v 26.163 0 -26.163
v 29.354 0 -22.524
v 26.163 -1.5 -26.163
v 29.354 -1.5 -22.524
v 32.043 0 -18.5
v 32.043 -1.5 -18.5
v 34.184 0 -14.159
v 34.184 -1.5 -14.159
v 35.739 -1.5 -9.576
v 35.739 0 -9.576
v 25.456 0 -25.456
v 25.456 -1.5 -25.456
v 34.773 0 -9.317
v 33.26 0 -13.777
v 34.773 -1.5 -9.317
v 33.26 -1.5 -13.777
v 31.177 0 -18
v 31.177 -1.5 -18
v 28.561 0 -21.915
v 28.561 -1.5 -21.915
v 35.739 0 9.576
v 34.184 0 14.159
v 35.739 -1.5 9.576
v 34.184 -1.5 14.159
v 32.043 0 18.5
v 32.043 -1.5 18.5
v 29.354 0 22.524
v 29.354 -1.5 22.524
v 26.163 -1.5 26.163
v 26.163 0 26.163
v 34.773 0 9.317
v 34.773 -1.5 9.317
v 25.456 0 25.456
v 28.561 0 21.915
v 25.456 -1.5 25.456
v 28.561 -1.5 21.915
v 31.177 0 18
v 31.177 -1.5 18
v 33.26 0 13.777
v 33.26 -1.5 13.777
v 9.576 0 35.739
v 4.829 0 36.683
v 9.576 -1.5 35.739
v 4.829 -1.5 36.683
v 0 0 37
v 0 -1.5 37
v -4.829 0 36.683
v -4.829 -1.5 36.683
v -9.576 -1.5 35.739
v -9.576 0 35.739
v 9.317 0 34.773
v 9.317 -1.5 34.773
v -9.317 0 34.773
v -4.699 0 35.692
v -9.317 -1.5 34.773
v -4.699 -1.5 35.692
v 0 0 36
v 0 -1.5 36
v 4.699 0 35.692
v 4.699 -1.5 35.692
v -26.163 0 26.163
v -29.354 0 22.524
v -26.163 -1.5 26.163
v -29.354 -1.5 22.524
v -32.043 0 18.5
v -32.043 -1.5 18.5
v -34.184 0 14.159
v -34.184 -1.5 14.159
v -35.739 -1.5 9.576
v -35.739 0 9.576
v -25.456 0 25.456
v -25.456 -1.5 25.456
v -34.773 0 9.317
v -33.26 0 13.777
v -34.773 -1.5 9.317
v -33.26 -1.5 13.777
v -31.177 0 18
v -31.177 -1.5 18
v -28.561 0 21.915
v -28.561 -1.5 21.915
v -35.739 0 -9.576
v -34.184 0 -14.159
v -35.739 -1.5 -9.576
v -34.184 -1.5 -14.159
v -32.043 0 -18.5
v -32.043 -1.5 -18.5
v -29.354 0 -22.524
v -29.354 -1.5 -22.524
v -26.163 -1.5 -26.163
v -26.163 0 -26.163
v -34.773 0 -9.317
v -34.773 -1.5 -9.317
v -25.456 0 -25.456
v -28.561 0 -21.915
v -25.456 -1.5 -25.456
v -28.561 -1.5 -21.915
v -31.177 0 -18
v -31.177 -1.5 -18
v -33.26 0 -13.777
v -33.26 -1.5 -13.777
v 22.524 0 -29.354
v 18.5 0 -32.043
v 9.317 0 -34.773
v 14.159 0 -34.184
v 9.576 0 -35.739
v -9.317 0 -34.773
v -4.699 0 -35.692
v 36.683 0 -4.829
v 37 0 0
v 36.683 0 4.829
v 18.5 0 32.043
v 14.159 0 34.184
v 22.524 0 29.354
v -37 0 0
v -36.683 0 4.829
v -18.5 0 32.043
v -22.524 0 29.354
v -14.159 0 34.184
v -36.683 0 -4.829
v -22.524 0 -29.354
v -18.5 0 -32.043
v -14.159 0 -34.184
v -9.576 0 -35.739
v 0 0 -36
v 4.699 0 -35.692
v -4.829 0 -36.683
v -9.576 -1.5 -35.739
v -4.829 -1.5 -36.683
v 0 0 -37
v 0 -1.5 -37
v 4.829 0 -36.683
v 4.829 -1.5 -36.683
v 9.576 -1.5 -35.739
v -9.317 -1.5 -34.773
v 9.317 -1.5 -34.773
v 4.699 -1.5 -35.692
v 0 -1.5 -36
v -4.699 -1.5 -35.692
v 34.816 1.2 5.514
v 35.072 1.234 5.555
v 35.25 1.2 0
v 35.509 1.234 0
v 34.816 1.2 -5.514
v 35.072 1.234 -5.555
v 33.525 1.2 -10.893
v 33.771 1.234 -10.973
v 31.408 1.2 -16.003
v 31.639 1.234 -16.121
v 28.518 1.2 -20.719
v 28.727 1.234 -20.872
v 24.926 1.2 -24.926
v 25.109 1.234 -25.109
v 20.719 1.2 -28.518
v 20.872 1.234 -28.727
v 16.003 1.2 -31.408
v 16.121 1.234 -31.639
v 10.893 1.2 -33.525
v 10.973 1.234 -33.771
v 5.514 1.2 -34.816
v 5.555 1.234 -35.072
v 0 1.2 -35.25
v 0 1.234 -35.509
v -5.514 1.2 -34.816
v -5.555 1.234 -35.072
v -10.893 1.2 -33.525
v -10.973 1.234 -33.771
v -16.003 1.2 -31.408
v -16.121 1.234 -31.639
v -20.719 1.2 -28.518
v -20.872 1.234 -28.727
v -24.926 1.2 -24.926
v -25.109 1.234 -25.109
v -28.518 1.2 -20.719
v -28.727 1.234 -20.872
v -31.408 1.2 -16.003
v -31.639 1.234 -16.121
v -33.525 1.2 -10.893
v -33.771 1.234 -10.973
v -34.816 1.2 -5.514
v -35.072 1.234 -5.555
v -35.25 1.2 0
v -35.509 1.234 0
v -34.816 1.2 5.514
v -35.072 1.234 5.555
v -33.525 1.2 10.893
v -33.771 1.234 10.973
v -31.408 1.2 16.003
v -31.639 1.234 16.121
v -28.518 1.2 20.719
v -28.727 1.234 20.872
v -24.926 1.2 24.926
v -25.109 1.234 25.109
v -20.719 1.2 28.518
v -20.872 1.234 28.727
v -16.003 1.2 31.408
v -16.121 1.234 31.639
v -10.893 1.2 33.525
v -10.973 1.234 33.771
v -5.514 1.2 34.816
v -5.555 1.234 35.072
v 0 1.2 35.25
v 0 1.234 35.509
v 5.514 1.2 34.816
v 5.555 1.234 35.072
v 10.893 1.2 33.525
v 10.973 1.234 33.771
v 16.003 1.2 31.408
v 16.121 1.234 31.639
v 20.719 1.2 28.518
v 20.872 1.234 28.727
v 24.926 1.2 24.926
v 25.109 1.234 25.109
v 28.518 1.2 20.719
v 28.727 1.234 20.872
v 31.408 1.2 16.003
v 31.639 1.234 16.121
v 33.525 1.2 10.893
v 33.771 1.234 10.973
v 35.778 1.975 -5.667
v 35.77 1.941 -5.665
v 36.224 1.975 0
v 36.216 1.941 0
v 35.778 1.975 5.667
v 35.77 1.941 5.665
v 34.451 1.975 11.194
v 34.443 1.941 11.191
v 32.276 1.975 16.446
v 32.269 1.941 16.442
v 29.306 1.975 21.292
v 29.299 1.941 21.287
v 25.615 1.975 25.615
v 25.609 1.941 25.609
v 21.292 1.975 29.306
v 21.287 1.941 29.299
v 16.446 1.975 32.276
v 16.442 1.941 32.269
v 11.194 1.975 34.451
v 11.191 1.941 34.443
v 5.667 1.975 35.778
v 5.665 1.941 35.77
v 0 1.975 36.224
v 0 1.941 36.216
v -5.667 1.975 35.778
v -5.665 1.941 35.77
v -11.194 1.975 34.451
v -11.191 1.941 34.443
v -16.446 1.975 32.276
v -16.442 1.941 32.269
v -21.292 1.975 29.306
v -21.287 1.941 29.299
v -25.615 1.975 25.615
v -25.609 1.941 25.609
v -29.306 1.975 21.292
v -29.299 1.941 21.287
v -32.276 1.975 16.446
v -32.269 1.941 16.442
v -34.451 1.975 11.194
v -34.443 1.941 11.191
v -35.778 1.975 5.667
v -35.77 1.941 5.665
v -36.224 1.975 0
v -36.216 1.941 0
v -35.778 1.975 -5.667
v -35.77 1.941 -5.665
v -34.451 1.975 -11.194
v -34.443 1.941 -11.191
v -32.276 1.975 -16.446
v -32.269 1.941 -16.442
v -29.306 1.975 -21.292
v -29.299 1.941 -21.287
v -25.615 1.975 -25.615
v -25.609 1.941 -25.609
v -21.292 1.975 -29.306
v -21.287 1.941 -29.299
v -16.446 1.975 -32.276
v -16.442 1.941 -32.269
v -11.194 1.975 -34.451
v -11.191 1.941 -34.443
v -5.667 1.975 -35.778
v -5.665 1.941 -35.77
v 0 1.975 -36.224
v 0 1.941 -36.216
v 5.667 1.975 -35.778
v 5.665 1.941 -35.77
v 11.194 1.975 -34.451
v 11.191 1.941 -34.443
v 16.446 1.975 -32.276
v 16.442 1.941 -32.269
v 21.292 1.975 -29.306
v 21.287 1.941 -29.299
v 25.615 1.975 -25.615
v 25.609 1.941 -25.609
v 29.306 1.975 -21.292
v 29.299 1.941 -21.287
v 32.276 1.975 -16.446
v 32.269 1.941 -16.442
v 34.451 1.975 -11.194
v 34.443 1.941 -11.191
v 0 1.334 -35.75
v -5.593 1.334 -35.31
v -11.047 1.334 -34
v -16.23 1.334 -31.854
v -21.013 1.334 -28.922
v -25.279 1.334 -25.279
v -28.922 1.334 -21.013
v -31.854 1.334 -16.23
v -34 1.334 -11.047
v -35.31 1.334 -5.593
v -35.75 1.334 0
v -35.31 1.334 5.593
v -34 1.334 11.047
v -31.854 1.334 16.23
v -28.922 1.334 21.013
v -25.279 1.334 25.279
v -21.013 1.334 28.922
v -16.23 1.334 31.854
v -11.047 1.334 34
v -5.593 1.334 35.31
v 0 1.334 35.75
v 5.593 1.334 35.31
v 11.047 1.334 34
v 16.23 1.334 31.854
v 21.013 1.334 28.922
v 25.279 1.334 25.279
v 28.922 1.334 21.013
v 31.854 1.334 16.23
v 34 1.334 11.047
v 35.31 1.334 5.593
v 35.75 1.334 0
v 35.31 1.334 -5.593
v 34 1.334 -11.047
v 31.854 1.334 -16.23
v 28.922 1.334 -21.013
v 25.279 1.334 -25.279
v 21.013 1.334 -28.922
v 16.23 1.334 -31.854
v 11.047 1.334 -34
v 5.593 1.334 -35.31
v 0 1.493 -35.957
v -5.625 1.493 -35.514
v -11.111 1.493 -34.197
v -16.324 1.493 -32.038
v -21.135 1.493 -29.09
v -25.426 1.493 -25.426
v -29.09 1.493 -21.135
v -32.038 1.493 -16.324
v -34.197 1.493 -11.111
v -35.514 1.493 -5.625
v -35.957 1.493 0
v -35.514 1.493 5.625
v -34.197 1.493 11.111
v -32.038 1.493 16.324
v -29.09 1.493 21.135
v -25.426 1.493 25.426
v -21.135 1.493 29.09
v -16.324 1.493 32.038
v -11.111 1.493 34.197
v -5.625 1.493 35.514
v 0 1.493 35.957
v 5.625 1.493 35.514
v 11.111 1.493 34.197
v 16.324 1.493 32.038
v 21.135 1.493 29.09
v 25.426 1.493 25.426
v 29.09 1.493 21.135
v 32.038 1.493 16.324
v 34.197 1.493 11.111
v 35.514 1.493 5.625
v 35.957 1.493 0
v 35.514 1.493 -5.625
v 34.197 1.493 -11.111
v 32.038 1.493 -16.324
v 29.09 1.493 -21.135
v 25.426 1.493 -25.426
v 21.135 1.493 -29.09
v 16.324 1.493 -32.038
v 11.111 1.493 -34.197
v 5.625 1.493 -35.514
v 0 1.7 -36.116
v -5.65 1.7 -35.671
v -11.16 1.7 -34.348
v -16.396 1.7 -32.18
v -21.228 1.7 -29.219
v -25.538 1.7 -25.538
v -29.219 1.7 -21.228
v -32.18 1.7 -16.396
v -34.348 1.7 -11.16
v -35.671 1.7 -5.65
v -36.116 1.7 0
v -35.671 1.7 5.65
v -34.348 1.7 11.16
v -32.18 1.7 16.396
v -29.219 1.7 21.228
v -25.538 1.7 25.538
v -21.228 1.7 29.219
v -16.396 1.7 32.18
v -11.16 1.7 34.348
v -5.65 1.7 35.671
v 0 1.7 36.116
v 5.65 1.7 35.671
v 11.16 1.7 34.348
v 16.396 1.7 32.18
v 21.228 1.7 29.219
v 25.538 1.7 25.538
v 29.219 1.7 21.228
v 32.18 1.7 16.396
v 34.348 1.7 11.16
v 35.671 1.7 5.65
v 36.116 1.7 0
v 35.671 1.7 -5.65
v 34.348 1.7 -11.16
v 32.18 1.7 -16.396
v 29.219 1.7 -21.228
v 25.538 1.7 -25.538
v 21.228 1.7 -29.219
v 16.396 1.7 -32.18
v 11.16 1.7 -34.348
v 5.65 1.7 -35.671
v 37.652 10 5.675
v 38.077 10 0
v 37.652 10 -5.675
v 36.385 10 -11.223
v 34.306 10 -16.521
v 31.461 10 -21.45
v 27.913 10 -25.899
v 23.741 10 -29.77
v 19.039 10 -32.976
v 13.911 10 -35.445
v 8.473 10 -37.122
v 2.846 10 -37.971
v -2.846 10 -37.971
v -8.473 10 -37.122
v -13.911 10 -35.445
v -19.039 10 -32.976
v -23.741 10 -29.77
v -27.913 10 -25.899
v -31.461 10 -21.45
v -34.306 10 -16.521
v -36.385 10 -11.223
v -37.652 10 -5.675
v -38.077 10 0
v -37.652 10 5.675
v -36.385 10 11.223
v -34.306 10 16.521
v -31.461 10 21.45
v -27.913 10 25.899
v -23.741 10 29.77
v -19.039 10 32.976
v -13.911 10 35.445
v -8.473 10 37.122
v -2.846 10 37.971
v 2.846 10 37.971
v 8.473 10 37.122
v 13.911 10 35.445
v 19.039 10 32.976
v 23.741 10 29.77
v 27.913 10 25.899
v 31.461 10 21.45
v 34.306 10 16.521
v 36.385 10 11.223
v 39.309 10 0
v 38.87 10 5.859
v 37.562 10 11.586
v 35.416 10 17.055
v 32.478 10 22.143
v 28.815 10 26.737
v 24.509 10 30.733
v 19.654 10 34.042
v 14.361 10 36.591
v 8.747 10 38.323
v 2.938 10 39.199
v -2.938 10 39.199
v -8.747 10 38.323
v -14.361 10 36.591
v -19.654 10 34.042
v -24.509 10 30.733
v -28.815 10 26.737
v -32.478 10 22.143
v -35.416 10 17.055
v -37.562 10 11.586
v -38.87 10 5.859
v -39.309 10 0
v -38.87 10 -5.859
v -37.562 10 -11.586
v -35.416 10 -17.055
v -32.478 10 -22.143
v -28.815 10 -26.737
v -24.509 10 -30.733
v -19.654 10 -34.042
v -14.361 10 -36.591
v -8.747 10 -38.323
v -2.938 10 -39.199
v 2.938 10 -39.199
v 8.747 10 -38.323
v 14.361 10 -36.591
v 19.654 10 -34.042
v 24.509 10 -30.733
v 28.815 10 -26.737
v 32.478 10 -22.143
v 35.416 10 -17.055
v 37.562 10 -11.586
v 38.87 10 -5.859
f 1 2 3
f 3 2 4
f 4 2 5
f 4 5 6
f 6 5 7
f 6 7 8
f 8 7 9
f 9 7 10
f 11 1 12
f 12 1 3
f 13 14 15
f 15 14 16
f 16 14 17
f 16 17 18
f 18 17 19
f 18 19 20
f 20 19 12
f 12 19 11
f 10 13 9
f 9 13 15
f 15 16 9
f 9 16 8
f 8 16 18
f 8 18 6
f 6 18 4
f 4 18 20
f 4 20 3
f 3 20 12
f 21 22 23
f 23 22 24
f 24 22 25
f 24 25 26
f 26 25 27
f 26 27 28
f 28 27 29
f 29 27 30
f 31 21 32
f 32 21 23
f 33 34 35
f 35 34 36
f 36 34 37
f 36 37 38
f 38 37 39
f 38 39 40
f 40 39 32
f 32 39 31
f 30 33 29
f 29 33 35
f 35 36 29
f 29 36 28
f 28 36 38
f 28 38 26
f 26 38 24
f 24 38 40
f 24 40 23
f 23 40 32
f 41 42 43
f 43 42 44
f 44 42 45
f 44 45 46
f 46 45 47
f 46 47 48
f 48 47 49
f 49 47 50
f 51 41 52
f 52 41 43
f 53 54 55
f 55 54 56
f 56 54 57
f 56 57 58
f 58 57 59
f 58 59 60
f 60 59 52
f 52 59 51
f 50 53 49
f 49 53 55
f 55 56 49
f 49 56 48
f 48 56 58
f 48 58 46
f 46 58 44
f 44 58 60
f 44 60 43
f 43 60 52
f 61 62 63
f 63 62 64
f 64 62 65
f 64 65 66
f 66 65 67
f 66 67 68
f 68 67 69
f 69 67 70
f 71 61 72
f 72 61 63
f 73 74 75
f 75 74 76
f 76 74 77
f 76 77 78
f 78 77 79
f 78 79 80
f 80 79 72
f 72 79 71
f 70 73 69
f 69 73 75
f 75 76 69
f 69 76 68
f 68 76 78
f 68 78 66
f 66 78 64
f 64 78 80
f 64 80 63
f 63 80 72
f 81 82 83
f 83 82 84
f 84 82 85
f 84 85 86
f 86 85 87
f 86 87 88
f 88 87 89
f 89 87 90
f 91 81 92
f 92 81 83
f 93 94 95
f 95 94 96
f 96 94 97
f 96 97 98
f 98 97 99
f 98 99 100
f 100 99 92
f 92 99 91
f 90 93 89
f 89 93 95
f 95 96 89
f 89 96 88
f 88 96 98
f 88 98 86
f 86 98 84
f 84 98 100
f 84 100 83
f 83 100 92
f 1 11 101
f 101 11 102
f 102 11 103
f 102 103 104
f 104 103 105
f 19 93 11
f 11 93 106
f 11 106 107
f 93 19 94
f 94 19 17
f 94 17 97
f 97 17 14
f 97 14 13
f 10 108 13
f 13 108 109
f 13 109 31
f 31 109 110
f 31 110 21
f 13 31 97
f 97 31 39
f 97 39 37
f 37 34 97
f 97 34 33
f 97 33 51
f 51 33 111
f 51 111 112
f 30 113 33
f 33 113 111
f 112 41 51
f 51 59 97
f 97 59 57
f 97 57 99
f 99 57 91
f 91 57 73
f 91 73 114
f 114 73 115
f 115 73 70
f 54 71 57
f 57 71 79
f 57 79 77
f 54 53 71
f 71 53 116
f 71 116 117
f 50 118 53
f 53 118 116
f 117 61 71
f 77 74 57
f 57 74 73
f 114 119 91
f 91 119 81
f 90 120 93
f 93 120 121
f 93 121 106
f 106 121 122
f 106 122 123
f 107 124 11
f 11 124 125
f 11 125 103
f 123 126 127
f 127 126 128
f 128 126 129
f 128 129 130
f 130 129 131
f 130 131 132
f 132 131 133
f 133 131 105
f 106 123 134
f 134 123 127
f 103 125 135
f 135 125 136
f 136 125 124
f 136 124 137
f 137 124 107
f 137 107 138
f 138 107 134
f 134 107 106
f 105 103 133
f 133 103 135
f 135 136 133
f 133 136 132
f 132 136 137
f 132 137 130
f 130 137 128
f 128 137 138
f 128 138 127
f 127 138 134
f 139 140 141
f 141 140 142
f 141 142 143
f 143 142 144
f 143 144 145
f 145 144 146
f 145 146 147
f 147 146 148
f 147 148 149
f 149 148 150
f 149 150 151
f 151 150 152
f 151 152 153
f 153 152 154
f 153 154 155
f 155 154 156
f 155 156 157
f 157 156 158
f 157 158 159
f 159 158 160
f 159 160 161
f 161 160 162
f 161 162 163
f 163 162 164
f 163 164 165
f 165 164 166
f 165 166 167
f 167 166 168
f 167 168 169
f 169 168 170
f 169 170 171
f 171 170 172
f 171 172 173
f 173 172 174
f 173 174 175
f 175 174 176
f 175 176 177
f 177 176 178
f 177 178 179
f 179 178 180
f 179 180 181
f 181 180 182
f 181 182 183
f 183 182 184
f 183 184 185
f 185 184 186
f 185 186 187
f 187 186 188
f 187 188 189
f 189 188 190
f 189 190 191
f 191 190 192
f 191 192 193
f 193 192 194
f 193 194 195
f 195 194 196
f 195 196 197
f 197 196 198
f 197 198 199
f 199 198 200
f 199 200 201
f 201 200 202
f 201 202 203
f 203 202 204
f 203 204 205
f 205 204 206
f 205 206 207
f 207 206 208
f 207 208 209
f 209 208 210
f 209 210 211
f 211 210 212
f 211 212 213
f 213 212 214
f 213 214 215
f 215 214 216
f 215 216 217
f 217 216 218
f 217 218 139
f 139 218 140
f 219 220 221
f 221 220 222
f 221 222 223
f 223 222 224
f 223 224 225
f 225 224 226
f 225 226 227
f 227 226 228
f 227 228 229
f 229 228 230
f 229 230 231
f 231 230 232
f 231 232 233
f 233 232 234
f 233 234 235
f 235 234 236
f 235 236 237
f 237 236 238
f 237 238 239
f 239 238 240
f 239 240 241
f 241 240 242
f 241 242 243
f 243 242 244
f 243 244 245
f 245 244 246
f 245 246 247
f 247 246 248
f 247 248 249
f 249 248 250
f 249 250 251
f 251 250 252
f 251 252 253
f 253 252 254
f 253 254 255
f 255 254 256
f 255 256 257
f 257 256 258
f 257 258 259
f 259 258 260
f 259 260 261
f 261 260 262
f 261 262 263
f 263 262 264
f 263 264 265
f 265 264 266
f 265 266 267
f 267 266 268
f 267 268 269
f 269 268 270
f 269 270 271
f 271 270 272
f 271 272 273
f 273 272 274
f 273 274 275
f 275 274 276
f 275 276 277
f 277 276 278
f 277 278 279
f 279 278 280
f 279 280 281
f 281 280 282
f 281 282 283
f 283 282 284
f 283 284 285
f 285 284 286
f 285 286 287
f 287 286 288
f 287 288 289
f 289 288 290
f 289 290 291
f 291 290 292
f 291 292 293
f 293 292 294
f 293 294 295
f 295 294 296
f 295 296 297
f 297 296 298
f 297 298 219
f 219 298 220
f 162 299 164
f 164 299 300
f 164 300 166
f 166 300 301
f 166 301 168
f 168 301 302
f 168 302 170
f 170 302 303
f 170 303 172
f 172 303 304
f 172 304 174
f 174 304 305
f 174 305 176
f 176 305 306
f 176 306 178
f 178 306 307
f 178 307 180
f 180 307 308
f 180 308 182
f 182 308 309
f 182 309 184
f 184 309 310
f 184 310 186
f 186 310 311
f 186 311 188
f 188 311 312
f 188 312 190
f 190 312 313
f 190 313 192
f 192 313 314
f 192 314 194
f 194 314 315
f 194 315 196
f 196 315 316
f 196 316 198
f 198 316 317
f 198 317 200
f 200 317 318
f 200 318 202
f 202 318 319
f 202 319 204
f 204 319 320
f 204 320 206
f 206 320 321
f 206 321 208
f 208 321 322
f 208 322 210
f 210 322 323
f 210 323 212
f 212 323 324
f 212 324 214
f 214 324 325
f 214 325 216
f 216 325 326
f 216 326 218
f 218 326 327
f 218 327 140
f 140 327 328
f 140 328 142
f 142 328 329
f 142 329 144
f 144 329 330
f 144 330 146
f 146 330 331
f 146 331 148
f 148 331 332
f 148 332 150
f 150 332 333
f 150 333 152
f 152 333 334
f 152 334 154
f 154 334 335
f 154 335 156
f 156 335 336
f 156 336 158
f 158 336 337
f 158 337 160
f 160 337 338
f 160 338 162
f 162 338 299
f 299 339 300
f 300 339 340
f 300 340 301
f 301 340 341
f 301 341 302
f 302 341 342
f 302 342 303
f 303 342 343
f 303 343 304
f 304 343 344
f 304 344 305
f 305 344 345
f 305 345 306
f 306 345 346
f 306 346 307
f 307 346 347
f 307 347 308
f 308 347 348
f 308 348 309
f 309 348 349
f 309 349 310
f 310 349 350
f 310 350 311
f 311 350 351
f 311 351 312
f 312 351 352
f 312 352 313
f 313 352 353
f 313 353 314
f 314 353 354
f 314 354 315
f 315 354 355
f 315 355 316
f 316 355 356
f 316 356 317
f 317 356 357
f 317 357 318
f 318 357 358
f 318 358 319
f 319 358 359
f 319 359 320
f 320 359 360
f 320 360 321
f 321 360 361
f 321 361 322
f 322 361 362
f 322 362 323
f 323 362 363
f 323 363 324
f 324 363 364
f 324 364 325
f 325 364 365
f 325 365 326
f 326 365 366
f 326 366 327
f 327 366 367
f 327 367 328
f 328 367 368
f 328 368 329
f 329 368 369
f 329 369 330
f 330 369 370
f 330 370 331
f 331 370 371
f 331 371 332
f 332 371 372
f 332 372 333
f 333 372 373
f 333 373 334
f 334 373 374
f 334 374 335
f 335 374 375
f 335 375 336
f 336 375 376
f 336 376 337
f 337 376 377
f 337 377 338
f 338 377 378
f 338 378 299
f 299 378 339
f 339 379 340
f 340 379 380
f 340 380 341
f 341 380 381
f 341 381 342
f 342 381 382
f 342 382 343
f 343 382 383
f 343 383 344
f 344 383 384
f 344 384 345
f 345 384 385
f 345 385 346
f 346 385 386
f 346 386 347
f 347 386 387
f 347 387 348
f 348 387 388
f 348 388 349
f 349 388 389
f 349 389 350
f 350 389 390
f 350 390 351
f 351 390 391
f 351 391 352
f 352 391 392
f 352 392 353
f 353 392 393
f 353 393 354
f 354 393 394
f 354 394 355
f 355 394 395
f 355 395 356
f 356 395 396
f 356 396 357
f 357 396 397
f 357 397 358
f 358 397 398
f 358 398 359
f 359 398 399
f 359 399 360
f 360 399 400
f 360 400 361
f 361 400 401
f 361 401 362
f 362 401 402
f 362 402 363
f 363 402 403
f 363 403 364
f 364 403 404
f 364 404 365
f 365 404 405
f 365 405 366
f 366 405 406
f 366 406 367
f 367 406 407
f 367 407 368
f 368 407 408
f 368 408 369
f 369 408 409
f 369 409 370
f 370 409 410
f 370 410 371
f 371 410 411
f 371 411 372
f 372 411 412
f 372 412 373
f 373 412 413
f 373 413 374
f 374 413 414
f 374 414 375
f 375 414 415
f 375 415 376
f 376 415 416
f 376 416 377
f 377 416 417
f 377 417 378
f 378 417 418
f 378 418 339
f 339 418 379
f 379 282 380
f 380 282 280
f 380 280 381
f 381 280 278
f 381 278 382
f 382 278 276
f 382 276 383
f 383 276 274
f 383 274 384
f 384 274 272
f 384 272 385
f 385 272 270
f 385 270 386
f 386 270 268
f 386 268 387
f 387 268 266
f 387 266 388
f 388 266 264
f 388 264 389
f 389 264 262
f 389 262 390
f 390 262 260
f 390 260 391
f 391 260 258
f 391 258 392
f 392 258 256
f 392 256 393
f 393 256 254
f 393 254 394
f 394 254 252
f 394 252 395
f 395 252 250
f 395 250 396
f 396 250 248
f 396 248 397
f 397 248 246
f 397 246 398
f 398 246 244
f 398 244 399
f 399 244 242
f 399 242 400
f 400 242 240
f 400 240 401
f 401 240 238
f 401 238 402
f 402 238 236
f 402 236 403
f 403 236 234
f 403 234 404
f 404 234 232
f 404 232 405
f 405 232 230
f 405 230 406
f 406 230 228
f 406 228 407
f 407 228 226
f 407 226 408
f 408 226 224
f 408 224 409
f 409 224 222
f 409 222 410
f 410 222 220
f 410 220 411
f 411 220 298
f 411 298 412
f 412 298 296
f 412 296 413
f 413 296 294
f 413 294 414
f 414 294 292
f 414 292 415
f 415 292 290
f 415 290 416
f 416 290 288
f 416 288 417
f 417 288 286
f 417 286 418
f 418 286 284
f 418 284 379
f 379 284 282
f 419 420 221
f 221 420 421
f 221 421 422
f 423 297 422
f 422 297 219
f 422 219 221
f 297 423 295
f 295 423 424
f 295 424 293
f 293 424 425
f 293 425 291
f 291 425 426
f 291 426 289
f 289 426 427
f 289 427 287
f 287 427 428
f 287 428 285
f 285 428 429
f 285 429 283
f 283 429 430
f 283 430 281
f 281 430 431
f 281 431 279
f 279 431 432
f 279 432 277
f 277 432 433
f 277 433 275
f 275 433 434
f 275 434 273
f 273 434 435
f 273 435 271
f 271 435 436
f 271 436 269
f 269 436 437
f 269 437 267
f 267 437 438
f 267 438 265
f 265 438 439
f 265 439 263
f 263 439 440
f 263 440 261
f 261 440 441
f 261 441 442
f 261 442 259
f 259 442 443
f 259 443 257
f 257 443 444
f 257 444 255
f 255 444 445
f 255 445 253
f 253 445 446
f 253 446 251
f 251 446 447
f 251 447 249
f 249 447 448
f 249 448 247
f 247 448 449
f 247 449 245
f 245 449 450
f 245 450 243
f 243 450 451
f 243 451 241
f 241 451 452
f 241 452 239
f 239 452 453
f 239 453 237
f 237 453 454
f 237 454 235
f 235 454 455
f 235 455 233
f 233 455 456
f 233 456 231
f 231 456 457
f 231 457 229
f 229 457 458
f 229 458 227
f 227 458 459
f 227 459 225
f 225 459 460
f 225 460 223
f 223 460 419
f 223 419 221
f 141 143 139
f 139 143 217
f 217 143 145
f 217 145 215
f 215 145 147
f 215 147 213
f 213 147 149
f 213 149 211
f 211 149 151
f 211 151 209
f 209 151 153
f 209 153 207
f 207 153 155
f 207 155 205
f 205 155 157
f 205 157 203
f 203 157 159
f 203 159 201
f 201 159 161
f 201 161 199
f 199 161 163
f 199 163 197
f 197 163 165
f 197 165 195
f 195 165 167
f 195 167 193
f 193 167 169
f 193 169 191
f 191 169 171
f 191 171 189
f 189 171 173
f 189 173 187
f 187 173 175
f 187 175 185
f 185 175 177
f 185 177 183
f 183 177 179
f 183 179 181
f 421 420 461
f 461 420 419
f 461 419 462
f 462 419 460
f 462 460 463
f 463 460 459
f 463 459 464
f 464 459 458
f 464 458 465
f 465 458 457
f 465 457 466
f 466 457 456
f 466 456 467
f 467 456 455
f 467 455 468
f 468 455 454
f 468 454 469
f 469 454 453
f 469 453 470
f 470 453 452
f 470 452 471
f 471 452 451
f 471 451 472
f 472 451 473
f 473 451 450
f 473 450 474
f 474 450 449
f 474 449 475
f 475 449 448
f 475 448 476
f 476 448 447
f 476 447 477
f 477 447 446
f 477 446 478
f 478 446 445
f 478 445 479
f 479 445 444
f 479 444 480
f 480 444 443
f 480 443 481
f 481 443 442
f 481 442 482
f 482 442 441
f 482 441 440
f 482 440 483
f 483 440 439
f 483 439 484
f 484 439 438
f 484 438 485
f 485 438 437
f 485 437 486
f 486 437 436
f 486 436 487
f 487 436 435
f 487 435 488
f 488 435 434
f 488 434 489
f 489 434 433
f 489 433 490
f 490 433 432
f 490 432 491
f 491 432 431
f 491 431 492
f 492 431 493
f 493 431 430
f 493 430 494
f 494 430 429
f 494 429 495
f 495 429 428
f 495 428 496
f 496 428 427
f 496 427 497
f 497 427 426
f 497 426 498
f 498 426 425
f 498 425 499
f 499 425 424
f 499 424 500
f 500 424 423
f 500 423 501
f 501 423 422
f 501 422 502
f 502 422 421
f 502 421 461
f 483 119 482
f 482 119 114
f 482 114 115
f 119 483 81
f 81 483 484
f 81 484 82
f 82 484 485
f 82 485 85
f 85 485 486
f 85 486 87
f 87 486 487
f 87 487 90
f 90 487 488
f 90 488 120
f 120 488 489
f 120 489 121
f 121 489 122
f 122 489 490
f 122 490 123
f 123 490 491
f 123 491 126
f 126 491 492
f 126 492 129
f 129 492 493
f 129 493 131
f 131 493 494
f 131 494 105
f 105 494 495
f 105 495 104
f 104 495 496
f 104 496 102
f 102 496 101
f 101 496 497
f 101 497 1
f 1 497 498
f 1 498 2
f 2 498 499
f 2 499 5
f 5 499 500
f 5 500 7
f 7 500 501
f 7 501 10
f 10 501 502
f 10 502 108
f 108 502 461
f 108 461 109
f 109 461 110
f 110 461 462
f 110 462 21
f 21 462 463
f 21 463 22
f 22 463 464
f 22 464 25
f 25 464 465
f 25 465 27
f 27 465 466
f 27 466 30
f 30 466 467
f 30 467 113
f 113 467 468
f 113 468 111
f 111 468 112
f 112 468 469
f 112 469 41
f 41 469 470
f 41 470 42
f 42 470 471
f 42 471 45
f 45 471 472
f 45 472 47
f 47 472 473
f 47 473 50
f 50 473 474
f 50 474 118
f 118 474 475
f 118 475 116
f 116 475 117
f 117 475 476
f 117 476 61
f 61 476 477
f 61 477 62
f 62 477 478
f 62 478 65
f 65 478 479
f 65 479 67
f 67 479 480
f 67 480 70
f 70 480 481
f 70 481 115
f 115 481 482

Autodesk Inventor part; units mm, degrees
ref_plane "YZ Plane" through (0, 0, 0) normal (1, 0, 0) x (0, 1, 0)
ref_plane "XZ Plane" through (0, 0, 0) normal (0, 1, 0) x (-1, 0, 0)
ref_plane "XY Plane" through (0, 0, 0) normal (0, 0, 1) x (1, 0, 0)
sketch "Sketch1" plane through (0, 0, 0) normal (0, 0, 1) x (1, 0, 0)
  line L0 (0, 0) -> (37, 0)
  line L1 (37, 0) -> (39.3087, 10)
  line L2 (39.3087, 10) -> (0, 10)
  line L3 (0, 10) -> (0, 0)
  dimension "d0" = 77
  dimension "d2" = 37
  dimension "d3" = 10
revolve "Revolution1" add sketch "Sketch1" angle 360 about axis through (0, 10, 0) along (0, -1, 0)
shell "Shell1" thickness 1.2 removed faces 1 at (-11.8053, 10, 5.6851)
fillet "Fillet1" radius 1 1 edges at (-36.0455, 1.2, 0)
sketch "Sketch2" plane through (0, 0, 0) normal (0, -1, 0) x (1, 0, 0)
  circle A0 centre (0, 0) radius 37 projected
  arc A1 (9.3175, 34.7733) -> (-9.3175, 34.7733) centre (0, 0) ccw
  line L0 (-9.3175, 34.7733) -> (-9.5763, 35.7393)
  line L1 (0, 0) -> (0, 37)
  line L2 (9.3175, 34.7733) -> (9.5763, 35.7393)
  arc A2 (9.5763, 35.7393) -> (-9.5763, 35.7393) centre (0, 0) ccw
  point P0 (0, 0)
  dimension "d8" = 72
  dimension "d9" = 15
  dimension "d10" = 15
extrude "Extrusion1" add sketch "Sketch2" along normal blind 1.5 contours L2 A1 L1 A0 | A0 L1 A1 L0
pattern_circular "Circular Pattern1" count 6 over 360 about axis through (0, -10, 0) along (0, 1, 0) of "Extrusion1"
properties part number "pot_holder_prototype"
